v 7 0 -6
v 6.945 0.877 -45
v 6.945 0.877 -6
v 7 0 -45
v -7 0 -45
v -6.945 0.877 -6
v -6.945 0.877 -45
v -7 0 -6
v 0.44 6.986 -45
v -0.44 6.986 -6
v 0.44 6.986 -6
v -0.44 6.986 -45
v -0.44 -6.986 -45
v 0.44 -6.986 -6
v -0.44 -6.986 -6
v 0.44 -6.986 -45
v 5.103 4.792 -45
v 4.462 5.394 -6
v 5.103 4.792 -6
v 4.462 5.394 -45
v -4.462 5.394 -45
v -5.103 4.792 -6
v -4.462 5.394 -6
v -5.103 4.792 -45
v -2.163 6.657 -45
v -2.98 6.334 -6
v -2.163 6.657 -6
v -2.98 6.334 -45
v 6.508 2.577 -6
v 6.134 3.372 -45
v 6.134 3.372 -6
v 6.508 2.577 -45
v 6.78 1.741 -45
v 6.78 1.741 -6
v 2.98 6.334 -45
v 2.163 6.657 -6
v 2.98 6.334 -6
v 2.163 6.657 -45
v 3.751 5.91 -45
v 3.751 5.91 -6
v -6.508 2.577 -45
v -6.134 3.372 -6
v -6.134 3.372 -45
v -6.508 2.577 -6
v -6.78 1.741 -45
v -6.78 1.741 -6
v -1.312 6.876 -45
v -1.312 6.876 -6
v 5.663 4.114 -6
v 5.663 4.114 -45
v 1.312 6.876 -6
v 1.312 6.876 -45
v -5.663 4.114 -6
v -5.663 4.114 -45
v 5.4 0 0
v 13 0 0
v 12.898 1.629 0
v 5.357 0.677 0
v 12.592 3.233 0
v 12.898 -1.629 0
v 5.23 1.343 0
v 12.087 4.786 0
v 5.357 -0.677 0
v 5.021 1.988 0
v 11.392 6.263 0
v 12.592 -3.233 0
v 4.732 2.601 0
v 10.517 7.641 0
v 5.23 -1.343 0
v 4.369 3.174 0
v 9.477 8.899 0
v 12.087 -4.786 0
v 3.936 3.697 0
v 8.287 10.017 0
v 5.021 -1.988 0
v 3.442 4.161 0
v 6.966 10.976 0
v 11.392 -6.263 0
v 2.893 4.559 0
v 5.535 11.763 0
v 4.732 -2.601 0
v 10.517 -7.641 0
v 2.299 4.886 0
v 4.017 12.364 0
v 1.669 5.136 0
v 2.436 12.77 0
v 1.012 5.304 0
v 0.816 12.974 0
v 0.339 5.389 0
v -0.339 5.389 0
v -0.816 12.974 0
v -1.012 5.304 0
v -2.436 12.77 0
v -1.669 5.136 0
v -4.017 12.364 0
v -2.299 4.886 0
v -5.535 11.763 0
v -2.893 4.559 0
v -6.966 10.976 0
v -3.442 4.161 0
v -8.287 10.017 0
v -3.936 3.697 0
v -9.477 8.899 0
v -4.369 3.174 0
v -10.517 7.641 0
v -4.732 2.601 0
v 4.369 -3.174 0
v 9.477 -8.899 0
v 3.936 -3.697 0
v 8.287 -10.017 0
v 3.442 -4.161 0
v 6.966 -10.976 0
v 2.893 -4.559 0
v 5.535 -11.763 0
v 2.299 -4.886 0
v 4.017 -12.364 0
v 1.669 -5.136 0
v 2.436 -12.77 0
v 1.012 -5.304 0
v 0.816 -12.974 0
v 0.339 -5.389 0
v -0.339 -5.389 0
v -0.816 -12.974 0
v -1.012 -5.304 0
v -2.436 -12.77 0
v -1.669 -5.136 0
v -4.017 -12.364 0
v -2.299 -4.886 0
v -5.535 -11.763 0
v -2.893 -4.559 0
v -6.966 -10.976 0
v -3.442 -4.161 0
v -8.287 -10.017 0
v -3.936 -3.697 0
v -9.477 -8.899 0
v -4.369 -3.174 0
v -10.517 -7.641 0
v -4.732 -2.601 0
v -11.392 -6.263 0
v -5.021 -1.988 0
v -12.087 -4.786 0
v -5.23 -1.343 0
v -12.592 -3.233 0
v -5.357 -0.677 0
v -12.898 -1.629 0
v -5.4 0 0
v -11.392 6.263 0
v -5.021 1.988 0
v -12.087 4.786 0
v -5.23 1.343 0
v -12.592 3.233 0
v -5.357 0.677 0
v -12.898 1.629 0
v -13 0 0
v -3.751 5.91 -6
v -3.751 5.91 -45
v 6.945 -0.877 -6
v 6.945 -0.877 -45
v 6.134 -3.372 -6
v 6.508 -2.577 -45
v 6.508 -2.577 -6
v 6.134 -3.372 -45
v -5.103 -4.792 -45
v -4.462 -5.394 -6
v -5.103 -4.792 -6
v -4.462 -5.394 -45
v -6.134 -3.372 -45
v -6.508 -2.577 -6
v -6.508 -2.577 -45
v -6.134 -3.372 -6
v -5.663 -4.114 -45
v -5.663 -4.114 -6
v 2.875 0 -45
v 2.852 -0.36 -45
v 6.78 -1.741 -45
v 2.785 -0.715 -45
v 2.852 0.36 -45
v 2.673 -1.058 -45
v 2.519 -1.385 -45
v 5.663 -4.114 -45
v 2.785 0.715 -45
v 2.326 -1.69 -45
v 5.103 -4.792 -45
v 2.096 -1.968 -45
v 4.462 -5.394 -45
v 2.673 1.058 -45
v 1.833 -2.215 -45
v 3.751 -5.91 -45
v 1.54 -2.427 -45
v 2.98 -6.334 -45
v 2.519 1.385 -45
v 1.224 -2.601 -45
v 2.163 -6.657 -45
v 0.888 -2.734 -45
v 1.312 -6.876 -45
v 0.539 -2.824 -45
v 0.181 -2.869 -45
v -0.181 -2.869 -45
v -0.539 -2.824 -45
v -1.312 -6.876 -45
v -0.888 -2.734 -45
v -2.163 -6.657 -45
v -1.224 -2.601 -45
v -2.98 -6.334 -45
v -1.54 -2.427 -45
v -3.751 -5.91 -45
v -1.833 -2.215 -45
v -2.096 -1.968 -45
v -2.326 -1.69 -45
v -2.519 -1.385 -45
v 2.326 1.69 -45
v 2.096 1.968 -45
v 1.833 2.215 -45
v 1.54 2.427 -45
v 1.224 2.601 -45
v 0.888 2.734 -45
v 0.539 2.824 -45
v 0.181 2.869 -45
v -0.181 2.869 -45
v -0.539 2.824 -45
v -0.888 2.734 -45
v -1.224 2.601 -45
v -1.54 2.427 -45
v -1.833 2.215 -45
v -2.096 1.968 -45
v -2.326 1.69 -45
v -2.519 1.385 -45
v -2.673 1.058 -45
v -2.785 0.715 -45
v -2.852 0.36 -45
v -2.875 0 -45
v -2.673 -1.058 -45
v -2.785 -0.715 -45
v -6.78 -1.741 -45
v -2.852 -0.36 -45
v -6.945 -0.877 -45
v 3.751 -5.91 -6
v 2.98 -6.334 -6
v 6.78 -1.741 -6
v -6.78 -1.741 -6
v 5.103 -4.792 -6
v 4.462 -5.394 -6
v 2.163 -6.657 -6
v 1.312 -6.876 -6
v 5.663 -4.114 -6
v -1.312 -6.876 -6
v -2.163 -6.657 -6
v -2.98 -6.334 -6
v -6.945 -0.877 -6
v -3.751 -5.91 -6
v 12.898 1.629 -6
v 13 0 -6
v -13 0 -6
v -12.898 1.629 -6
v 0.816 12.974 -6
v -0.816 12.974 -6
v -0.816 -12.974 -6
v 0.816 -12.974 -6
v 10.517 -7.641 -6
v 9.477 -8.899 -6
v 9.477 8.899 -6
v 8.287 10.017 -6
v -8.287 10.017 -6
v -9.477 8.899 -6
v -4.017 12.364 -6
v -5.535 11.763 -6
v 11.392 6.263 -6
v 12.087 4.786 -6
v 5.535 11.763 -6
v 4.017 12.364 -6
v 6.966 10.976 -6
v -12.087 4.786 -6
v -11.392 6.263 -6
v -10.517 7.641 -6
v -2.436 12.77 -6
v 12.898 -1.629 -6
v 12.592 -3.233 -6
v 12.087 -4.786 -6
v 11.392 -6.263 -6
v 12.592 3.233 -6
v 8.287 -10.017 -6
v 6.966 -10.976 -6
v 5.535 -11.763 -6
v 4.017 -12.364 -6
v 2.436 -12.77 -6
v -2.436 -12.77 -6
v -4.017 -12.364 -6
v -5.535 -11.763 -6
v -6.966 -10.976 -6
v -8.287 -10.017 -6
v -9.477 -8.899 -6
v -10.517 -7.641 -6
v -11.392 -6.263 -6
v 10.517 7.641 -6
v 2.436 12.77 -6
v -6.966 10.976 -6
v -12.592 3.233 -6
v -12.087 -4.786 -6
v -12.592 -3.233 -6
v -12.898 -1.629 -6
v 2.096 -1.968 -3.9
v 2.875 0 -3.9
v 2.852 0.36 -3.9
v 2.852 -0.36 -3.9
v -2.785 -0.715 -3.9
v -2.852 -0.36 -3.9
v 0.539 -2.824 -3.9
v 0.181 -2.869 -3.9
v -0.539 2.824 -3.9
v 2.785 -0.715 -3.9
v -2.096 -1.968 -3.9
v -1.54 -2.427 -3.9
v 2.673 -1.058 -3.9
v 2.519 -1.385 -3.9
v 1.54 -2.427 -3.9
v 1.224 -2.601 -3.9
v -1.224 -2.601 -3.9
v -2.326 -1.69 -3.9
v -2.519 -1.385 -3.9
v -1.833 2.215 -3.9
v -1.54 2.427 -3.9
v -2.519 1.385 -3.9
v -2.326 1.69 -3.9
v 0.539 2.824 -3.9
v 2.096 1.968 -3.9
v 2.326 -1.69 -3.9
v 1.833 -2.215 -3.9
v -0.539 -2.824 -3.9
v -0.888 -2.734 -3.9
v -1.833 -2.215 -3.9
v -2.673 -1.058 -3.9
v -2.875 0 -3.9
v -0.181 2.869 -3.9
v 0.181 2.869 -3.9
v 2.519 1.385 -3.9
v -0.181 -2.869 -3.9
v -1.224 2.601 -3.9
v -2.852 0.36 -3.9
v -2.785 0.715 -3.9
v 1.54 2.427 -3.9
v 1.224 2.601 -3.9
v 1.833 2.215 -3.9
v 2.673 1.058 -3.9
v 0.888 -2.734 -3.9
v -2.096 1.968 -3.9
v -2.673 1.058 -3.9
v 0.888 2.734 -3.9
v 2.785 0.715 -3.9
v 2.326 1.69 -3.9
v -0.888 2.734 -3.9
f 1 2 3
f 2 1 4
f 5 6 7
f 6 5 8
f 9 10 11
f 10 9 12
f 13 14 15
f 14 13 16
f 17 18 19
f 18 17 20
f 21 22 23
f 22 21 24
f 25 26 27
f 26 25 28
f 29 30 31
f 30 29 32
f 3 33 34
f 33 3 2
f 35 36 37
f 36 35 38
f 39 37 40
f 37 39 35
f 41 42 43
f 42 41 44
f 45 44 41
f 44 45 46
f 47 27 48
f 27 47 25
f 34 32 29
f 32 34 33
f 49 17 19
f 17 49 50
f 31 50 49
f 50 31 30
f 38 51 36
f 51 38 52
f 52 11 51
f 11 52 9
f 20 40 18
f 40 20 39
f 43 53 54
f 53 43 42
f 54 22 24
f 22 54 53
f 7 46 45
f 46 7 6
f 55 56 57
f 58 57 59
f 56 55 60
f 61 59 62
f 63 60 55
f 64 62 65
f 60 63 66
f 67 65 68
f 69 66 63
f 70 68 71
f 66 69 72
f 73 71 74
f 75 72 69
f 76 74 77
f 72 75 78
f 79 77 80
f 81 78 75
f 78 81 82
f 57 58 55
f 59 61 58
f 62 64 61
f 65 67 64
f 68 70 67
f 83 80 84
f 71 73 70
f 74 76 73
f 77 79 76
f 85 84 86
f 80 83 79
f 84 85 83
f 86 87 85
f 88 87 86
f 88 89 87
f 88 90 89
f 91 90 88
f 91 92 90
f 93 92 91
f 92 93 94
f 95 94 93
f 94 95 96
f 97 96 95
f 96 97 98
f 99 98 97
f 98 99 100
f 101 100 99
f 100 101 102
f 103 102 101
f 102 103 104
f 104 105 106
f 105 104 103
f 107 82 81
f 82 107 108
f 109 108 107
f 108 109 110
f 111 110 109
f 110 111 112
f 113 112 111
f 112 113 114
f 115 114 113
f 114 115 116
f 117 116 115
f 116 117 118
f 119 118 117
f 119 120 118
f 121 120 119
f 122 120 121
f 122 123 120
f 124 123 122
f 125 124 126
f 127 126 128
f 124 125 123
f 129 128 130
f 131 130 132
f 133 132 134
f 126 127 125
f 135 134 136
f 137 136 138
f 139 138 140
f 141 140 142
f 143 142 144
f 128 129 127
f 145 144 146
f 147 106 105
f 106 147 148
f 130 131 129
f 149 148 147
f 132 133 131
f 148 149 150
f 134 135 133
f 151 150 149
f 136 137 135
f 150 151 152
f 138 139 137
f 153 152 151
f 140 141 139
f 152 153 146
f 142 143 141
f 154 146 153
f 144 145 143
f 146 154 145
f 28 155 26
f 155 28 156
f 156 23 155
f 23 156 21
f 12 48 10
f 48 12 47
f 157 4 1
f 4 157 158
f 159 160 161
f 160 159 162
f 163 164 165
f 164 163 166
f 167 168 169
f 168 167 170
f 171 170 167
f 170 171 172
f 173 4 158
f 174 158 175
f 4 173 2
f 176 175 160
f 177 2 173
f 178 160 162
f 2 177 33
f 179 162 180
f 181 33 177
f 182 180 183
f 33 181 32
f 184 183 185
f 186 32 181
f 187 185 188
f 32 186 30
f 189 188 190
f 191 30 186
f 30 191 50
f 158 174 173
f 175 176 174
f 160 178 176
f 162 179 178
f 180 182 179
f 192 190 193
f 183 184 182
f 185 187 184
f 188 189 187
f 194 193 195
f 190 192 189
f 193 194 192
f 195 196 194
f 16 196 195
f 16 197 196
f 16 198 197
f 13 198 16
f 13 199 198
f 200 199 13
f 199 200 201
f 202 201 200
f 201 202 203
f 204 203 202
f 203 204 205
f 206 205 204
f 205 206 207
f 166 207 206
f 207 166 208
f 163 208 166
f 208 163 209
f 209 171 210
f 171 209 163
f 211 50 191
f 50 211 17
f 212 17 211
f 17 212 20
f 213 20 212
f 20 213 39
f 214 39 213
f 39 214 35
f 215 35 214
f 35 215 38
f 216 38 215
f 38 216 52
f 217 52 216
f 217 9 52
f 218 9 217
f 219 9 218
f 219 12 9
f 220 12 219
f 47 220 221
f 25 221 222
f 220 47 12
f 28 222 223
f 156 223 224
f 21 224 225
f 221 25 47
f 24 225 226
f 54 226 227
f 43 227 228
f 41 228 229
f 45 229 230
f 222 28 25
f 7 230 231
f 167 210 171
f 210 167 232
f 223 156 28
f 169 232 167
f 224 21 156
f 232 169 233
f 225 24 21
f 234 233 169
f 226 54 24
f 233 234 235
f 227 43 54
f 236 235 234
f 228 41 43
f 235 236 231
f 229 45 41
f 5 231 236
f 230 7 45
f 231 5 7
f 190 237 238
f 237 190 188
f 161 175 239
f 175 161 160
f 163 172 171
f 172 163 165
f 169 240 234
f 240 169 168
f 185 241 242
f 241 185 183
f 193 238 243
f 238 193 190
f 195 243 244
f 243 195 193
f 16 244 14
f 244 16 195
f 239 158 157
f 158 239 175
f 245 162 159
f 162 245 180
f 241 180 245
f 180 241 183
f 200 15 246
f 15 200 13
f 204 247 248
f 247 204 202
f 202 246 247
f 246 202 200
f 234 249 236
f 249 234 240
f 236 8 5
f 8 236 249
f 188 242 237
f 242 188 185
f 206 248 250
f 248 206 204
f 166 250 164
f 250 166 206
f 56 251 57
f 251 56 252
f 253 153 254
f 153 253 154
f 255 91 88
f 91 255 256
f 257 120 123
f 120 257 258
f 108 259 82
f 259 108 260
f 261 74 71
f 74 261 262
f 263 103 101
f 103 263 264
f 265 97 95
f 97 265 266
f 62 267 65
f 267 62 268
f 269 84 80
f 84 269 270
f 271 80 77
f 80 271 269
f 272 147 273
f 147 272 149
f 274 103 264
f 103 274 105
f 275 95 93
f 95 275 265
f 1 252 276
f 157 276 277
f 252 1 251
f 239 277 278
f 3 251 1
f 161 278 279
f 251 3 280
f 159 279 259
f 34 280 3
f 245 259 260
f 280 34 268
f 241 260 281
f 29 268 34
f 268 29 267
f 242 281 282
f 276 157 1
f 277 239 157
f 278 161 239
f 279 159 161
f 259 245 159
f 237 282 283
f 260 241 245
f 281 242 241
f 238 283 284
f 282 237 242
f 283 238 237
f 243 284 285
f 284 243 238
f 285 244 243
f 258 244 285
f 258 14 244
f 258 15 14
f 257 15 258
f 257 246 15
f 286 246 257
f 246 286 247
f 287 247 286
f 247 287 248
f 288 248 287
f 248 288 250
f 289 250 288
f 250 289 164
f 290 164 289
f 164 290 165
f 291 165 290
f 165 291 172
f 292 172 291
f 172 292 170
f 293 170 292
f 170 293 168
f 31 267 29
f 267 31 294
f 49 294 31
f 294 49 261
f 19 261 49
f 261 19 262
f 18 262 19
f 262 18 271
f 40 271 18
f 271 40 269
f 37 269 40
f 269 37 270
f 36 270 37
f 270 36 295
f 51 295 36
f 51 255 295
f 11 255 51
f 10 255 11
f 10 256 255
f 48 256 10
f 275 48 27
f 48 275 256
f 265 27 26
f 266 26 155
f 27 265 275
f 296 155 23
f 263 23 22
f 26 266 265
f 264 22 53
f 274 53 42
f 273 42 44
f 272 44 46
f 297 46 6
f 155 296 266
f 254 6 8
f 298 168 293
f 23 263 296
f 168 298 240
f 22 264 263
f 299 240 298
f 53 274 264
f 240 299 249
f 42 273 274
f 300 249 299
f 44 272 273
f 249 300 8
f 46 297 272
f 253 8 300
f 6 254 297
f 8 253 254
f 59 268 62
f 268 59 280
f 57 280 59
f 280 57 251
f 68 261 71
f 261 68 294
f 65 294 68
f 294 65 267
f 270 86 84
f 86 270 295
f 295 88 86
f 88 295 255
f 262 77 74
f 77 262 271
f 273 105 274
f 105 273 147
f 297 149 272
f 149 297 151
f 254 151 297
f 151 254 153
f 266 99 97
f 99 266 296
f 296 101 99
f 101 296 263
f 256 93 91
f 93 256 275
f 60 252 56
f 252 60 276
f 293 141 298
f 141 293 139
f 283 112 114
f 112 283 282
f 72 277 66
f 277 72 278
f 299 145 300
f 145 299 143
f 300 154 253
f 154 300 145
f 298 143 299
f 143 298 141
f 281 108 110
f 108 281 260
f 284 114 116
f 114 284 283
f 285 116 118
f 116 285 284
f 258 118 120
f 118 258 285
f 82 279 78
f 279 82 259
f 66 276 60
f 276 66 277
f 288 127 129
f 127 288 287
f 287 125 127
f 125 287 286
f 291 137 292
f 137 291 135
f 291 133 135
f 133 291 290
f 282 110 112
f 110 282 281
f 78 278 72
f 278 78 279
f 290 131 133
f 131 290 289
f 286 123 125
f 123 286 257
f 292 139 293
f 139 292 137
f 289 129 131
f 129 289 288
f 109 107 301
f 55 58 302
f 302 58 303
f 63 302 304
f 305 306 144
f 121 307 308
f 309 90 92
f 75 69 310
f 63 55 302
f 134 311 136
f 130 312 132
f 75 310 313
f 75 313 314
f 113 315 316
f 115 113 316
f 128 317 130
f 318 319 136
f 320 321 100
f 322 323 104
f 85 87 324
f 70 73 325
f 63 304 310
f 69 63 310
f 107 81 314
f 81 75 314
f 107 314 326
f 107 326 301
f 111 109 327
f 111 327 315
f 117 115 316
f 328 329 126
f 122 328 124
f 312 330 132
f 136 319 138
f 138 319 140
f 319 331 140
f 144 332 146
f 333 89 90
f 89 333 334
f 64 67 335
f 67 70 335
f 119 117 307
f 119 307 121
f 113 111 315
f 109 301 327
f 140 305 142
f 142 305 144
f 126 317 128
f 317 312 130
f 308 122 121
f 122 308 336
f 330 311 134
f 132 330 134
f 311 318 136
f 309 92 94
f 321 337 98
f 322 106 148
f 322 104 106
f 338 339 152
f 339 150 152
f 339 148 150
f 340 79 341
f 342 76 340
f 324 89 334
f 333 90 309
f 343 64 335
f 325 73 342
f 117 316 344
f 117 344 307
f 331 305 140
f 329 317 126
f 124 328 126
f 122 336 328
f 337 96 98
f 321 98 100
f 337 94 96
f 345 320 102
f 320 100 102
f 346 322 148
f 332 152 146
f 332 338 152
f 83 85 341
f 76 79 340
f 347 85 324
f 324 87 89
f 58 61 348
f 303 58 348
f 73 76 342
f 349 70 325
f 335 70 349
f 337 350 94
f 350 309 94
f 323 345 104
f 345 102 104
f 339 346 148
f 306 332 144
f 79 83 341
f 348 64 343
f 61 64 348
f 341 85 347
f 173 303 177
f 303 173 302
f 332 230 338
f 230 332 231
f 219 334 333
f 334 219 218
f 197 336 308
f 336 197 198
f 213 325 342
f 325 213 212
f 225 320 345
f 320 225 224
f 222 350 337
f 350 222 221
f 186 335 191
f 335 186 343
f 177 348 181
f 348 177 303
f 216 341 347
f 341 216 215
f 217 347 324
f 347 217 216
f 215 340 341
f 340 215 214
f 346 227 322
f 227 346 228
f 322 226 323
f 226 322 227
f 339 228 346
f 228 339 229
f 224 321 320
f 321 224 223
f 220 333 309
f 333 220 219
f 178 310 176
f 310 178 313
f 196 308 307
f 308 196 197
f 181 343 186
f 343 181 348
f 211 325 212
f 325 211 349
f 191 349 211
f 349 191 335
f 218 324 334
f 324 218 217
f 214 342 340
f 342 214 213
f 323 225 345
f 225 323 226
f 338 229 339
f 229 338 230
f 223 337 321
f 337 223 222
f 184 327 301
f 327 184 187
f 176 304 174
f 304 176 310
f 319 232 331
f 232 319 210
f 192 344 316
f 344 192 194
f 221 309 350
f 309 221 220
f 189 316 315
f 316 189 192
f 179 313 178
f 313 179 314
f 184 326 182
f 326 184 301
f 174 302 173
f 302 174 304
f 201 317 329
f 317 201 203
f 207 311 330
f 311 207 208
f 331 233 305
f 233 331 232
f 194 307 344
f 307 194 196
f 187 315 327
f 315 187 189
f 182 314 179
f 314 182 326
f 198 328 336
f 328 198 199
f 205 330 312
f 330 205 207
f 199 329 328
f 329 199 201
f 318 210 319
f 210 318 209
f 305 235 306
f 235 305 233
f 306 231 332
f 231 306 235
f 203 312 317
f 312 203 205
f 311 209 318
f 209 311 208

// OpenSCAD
$fn = 50;


difference() {
	union() {
		translate(v = [0, 0, -45.0000000000]) {
			cylinder(h = 45, r = 7.0000000000);
		}
		translate(v = [0, 0, -6.0000000000]) {
			cylinder(h = 6, r = 13.0000000000);
		}
	}
	union() {
		translate(v = [0, 0, 0]) {
			rotate(a = [0, 0, 0]) {
				difference() {
					union() {
						#translate(v = [0, 0, -45.0000000000]) {
							cylinder(h = 45, r = 2.6000000000);
						}
						#translate(v = [0, 0, -3.9000000000]) {
							cylinder(h = 3.9000000000, r1 = 2.8750000000, r2 = 5.4000000000);
						}
						#translate(v = [0, 0, -45.0000000000]) {
							cylinder(h = 45, r = 2.8750000000);
						}
						#translate(v = [0, 0, -45.0000000000]) {
							cylinder(h = 45, r = 2.6000000000);
						}
					}
					union();
				}
			}
		}
	}
}
